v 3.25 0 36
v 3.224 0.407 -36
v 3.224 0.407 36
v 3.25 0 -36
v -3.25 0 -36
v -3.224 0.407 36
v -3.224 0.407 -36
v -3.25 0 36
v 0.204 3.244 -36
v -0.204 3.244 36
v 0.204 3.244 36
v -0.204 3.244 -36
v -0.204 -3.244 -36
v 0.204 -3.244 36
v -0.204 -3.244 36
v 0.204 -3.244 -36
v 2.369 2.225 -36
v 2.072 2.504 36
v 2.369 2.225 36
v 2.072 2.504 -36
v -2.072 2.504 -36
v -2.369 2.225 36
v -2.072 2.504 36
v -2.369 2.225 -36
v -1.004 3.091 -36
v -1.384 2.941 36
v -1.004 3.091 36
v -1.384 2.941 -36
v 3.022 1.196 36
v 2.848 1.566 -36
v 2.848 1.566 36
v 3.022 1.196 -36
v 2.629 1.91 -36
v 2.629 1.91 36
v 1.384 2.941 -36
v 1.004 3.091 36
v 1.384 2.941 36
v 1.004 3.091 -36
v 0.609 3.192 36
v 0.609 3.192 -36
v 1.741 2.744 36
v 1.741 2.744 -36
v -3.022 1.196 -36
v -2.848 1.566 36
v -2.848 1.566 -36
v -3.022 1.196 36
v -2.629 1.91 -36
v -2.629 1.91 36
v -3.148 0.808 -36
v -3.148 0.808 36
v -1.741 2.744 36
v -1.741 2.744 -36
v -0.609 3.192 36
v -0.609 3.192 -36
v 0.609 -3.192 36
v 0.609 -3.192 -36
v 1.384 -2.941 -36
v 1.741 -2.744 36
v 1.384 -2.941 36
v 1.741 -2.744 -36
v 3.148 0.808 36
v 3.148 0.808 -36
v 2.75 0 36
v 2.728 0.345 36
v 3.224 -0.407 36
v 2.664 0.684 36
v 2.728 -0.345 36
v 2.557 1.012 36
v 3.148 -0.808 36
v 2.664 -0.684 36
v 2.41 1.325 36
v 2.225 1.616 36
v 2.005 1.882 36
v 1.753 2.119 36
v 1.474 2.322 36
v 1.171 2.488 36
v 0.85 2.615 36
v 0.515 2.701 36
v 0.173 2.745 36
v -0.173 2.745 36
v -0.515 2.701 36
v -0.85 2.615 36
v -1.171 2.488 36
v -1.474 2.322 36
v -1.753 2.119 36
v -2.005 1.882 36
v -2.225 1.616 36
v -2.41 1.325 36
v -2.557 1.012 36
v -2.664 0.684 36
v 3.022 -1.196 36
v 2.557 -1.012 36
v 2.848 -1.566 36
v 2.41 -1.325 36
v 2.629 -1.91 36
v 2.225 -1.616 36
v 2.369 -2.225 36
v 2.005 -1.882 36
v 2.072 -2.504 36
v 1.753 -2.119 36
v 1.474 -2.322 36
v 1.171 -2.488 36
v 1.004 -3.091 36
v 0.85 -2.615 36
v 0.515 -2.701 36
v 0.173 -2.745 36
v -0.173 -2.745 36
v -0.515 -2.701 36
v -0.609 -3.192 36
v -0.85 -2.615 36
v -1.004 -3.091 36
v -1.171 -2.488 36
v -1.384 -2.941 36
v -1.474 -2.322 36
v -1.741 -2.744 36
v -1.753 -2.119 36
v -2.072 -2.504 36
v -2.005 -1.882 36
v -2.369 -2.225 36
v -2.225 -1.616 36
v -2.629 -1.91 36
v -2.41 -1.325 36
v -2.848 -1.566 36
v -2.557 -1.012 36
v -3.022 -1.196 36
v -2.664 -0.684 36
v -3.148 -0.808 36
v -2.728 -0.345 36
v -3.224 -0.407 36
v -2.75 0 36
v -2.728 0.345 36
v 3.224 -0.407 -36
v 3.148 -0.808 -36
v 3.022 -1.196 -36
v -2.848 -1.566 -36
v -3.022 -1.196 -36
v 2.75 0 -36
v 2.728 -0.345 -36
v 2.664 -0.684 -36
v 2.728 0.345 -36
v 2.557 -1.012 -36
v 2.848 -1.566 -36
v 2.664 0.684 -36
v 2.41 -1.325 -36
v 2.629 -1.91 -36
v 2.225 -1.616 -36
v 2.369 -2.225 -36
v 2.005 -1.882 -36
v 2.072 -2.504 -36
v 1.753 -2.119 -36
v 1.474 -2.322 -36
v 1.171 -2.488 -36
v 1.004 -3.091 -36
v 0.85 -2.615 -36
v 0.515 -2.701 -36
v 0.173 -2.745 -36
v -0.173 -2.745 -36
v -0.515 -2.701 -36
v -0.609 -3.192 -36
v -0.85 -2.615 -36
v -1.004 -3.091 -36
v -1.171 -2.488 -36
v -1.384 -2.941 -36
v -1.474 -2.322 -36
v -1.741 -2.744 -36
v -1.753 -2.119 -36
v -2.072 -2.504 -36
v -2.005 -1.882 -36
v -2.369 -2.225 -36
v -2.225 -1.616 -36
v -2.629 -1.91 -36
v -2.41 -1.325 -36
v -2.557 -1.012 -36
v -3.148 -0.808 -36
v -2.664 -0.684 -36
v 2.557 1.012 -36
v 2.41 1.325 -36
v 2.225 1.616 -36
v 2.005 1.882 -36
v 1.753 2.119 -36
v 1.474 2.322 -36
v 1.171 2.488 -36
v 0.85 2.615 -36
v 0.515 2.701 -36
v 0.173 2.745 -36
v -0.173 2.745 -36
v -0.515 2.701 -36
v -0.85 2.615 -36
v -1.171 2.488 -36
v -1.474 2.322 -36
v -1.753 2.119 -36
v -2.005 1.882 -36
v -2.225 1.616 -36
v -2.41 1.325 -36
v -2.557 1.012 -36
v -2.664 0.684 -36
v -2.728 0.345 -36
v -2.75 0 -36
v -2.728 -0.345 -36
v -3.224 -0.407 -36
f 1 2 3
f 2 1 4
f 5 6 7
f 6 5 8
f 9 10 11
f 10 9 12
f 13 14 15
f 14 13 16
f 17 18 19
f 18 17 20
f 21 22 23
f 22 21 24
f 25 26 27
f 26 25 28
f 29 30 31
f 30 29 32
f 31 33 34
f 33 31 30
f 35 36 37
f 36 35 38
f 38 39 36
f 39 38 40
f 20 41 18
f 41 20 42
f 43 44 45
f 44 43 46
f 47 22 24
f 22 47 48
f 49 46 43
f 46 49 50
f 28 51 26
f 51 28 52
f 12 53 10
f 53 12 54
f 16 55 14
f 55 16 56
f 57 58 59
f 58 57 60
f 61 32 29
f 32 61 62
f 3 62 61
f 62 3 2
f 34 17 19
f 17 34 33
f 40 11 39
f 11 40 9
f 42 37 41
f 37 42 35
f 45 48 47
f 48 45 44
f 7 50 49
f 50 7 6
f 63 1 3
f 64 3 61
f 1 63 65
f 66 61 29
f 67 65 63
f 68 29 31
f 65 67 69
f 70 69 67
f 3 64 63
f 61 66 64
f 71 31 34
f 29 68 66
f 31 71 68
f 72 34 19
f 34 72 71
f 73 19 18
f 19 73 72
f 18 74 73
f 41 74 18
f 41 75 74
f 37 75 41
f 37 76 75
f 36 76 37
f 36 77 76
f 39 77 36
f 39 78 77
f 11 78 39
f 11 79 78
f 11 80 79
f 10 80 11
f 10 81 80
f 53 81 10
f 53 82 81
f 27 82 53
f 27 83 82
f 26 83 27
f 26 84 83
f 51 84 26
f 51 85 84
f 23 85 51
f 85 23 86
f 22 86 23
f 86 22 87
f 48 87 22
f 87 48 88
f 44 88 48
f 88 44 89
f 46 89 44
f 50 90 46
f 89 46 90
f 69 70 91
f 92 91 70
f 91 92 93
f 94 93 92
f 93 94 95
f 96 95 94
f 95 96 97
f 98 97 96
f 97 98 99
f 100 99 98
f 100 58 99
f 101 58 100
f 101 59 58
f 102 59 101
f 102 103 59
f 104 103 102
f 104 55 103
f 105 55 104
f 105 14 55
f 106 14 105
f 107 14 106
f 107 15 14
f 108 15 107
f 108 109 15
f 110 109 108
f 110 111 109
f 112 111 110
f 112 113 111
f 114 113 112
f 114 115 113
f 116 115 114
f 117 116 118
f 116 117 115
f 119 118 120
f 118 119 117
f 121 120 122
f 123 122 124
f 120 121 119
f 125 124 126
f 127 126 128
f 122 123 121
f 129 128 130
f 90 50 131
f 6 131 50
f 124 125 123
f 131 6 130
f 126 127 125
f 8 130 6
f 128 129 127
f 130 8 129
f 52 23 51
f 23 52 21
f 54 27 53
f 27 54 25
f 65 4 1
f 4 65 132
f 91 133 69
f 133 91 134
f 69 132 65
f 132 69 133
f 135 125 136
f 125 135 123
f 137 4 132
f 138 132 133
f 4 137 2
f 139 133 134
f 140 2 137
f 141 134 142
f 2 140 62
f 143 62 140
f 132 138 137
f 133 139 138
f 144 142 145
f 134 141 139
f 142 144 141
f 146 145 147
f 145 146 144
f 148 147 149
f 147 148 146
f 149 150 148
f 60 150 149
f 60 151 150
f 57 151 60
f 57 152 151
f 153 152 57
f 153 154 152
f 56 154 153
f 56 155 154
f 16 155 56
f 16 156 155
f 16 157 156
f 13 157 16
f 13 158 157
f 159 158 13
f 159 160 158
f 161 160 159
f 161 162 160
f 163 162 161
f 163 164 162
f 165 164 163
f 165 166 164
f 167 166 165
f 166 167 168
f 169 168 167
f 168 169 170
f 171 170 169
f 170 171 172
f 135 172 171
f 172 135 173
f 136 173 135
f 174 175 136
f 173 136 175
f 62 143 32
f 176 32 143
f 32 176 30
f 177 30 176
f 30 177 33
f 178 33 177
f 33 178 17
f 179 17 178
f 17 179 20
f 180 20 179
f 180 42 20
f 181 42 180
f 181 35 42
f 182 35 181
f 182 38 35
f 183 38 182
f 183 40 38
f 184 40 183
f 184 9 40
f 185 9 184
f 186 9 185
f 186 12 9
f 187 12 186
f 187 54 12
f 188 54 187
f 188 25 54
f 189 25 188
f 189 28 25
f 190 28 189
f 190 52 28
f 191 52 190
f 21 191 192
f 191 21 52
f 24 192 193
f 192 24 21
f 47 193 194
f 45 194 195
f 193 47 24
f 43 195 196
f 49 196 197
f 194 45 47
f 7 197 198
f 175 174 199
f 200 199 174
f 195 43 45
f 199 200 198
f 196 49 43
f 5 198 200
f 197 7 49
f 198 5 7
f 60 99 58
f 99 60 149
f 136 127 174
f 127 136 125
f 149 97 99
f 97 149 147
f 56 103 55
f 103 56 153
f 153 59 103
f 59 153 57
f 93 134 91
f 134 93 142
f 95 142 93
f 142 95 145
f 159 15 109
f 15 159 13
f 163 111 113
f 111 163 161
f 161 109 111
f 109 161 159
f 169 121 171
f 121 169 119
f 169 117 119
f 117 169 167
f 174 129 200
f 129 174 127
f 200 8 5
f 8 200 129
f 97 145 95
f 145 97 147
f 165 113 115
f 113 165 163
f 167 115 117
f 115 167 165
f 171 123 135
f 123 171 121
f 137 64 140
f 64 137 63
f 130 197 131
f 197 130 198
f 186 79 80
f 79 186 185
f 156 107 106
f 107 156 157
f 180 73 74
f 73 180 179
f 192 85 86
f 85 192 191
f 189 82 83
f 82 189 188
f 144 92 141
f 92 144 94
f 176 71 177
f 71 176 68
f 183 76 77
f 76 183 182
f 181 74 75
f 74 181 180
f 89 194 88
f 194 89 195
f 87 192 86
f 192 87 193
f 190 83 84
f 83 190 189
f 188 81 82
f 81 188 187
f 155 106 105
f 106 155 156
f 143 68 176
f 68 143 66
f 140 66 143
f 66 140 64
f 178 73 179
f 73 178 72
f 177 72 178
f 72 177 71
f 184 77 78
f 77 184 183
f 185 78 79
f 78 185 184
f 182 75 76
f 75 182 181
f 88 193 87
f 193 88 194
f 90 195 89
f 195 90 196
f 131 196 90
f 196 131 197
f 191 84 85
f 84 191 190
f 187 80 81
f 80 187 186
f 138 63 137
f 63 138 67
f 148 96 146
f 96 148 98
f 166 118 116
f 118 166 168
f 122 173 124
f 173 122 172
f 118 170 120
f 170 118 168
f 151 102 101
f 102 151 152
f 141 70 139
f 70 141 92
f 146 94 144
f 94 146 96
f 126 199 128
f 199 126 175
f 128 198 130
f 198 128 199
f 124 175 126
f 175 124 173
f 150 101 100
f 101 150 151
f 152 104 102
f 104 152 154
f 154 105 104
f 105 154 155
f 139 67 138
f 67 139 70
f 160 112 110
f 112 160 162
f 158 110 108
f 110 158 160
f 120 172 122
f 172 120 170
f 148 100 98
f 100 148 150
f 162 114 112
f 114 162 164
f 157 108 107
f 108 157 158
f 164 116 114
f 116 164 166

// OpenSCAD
$fn = 50;


difference() {
	union() {
		translate(v = [0, 0, -36.0000000000]) {
			cylinder(h = 72, r = 3.2500000000);
		}
	}
	union() {
		translate(v = [0, 0, -100.0000000000]) {
			cylinder(h = 200, r = 2.7500000000);
		}
	}
}
